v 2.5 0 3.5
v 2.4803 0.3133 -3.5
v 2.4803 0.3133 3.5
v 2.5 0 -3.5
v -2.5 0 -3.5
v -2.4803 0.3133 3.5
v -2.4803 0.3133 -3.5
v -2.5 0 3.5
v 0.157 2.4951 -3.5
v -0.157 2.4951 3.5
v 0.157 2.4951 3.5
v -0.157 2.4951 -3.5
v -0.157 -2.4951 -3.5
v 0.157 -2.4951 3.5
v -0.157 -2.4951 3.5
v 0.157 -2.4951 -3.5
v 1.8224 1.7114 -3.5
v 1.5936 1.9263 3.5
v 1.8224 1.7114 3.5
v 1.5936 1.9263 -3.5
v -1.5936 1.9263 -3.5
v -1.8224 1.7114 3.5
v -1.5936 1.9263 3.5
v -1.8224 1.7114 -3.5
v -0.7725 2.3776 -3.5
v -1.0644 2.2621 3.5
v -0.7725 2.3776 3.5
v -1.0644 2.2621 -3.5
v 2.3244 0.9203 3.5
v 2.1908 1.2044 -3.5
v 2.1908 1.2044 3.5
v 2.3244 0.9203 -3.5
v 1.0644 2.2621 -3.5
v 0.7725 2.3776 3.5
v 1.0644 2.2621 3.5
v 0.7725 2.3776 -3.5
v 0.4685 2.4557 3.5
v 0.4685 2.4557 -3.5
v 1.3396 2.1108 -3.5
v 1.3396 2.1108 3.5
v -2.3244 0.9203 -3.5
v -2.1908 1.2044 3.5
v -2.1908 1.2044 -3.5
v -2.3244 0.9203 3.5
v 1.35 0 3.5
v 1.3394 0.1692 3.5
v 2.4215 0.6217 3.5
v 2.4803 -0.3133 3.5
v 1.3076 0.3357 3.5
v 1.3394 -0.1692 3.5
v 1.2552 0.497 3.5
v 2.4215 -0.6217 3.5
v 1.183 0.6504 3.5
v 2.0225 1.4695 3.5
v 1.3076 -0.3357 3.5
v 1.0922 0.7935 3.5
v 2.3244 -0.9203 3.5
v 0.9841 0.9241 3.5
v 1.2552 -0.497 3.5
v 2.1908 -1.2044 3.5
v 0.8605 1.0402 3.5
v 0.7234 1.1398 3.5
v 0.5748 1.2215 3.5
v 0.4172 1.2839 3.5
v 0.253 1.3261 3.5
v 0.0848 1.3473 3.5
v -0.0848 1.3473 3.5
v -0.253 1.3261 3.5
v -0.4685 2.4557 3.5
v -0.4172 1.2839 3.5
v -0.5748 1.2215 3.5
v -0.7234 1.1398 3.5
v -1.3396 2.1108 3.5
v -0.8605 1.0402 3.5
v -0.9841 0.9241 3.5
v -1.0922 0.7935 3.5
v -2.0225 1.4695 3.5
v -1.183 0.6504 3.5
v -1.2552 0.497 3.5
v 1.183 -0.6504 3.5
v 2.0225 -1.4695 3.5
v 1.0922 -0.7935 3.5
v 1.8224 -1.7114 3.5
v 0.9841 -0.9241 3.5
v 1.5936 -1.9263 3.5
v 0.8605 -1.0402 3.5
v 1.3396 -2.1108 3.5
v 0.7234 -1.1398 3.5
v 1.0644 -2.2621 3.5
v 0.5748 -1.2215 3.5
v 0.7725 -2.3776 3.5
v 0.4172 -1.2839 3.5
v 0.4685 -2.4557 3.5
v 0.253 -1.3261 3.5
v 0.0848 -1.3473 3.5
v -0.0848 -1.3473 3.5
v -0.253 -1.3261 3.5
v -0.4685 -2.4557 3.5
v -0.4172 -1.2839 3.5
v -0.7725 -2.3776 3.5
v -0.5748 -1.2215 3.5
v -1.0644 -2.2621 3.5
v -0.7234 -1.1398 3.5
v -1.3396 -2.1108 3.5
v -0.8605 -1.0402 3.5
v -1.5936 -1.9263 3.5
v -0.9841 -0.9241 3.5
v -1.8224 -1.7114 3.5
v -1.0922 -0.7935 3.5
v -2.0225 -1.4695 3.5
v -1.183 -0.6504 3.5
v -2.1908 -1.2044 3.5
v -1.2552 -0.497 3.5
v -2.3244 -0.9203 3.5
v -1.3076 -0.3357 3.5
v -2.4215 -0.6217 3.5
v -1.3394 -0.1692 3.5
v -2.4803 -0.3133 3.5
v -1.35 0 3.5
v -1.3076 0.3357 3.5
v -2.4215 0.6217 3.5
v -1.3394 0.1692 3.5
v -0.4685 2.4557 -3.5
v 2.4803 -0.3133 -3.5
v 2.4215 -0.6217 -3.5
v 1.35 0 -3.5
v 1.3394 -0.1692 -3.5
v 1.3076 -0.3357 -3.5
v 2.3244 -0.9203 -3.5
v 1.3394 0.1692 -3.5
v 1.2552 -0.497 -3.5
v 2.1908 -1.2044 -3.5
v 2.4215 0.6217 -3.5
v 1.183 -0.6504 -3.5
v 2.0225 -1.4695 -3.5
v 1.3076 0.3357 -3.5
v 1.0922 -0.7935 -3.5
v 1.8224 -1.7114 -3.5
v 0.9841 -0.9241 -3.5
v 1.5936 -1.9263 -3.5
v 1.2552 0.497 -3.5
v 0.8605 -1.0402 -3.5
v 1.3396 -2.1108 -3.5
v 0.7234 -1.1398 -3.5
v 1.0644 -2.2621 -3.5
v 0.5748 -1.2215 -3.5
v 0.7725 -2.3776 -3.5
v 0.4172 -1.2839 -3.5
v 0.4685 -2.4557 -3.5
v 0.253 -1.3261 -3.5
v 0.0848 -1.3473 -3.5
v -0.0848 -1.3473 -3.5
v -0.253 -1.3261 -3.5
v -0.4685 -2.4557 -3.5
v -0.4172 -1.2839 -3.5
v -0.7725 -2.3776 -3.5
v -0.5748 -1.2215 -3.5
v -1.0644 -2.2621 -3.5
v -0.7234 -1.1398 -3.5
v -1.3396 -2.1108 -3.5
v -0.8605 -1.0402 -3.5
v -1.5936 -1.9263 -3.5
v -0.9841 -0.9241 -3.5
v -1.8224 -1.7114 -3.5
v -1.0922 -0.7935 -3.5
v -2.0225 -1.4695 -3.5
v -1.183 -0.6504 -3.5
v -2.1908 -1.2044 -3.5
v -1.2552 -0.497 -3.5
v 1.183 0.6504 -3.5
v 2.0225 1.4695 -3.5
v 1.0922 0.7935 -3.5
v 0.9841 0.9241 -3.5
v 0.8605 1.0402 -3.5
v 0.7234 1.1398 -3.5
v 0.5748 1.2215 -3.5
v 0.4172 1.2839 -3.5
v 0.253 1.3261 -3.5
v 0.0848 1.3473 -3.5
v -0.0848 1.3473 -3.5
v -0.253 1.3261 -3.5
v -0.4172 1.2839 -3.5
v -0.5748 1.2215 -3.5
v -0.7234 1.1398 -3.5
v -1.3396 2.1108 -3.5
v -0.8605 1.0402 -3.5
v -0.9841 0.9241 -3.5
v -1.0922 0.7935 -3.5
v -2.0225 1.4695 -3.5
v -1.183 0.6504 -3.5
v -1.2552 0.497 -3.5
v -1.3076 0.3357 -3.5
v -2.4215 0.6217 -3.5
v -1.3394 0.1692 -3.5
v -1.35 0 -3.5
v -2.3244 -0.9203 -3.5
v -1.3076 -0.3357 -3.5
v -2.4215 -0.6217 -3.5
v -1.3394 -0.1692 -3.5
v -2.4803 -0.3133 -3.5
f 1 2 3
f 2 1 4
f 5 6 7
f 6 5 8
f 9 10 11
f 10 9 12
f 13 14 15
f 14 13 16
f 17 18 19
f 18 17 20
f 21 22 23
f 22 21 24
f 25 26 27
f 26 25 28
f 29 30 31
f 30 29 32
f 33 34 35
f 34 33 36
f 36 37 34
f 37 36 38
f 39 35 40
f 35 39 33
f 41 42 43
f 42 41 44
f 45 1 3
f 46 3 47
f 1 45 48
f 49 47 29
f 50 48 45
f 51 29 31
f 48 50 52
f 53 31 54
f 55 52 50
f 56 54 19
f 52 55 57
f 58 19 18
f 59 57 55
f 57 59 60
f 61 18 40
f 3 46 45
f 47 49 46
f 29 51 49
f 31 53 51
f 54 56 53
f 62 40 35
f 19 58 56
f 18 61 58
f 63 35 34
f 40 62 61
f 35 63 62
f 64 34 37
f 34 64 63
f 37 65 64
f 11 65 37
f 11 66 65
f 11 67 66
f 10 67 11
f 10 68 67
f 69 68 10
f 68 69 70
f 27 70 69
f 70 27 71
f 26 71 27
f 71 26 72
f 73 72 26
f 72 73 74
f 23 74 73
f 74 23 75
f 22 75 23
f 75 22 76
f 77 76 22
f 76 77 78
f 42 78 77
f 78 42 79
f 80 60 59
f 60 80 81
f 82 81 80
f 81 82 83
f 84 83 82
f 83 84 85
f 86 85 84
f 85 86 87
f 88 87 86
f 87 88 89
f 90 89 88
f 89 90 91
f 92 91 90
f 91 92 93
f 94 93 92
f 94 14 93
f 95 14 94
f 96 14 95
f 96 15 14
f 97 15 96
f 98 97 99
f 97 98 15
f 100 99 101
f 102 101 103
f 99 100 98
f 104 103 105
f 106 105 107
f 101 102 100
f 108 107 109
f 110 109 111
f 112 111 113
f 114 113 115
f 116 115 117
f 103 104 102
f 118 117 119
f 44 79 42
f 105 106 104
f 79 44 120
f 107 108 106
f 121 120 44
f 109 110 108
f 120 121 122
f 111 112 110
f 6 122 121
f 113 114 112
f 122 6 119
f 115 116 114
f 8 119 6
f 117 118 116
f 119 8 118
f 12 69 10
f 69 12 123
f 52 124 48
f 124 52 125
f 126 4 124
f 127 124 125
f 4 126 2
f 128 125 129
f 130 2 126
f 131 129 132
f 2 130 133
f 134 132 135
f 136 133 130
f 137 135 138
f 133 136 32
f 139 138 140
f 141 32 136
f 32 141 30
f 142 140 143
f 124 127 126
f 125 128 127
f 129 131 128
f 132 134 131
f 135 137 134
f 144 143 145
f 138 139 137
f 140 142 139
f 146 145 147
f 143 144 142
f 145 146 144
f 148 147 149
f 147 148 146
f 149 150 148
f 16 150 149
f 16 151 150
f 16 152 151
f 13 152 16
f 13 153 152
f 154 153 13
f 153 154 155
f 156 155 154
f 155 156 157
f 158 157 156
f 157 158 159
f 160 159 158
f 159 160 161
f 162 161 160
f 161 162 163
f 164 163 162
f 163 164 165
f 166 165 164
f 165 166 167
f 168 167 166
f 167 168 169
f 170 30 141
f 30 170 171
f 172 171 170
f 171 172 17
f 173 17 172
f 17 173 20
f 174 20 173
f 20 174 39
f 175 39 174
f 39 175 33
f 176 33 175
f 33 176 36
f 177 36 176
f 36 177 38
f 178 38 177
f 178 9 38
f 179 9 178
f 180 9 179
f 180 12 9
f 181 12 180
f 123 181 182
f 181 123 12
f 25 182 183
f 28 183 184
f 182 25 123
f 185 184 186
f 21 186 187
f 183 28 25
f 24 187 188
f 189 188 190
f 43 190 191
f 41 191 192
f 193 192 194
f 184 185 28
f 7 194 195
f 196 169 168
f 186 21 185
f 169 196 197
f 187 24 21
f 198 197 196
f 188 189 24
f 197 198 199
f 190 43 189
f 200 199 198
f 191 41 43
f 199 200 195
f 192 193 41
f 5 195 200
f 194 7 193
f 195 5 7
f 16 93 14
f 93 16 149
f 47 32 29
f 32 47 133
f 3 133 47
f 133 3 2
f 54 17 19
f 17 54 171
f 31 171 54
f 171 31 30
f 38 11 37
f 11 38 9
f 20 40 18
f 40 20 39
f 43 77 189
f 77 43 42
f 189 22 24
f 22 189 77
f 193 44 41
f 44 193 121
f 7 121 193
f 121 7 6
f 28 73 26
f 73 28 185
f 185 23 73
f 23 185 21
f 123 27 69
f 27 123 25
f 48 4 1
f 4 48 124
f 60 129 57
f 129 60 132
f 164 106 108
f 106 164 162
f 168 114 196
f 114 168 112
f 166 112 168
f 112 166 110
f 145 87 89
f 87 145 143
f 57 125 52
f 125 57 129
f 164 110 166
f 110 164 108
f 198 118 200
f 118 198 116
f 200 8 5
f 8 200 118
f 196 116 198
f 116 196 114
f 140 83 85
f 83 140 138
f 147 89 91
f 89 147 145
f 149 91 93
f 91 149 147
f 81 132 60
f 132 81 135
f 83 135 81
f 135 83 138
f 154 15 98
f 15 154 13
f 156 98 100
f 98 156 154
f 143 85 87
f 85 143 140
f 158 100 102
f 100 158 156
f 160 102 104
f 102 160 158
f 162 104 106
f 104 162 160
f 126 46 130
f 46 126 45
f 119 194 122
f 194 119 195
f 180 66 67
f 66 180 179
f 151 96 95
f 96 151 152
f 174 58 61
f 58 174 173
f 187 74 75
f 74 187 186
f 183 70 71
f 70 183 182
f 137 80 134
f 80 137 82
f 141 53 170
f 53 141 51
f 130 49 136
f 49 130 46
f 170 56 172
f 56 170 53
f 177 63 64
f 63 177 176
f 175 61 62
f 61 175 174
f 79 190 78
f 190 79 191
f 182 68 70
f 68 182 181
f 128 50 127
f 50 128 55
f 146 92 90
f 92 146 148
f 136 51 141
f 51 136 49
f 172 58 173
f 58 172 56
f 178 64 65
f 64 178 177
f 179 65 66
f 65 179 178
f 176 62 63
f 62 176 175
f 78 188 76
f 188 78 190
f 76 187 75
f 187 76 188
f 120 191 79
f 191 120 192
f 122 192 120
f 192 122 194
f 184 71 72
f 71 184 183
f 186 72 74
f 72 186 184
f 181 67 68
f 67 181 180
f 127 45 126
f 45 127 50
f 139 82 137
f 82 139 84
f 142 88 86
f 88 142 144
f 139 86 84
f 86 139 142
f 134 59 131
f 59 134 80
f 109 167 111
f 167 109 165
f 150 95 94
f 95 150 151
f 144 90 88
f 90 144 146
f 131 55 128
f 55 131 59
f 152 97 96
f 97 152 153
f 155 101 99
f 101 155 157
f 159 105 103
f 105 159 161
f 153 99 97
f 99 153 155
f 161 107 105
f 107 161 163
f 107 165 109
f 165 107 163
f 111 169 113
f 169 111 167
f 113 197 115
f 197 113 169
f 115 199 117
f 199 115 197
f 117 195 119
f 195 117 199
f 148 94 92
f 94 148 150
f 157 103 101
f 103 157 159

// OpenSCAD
$fn = 50;


difference() {
	union() {
		translate(v = [0, 0, -3.5000000000]) {
			cylinder(h = 7, r = 2.5000000000);
		}
	}
	union() {
		translate(v = [0, 0, -100.0000000000]) {
			cylinder(h = 200, r = 1.3500000000);
		}
	}
}
